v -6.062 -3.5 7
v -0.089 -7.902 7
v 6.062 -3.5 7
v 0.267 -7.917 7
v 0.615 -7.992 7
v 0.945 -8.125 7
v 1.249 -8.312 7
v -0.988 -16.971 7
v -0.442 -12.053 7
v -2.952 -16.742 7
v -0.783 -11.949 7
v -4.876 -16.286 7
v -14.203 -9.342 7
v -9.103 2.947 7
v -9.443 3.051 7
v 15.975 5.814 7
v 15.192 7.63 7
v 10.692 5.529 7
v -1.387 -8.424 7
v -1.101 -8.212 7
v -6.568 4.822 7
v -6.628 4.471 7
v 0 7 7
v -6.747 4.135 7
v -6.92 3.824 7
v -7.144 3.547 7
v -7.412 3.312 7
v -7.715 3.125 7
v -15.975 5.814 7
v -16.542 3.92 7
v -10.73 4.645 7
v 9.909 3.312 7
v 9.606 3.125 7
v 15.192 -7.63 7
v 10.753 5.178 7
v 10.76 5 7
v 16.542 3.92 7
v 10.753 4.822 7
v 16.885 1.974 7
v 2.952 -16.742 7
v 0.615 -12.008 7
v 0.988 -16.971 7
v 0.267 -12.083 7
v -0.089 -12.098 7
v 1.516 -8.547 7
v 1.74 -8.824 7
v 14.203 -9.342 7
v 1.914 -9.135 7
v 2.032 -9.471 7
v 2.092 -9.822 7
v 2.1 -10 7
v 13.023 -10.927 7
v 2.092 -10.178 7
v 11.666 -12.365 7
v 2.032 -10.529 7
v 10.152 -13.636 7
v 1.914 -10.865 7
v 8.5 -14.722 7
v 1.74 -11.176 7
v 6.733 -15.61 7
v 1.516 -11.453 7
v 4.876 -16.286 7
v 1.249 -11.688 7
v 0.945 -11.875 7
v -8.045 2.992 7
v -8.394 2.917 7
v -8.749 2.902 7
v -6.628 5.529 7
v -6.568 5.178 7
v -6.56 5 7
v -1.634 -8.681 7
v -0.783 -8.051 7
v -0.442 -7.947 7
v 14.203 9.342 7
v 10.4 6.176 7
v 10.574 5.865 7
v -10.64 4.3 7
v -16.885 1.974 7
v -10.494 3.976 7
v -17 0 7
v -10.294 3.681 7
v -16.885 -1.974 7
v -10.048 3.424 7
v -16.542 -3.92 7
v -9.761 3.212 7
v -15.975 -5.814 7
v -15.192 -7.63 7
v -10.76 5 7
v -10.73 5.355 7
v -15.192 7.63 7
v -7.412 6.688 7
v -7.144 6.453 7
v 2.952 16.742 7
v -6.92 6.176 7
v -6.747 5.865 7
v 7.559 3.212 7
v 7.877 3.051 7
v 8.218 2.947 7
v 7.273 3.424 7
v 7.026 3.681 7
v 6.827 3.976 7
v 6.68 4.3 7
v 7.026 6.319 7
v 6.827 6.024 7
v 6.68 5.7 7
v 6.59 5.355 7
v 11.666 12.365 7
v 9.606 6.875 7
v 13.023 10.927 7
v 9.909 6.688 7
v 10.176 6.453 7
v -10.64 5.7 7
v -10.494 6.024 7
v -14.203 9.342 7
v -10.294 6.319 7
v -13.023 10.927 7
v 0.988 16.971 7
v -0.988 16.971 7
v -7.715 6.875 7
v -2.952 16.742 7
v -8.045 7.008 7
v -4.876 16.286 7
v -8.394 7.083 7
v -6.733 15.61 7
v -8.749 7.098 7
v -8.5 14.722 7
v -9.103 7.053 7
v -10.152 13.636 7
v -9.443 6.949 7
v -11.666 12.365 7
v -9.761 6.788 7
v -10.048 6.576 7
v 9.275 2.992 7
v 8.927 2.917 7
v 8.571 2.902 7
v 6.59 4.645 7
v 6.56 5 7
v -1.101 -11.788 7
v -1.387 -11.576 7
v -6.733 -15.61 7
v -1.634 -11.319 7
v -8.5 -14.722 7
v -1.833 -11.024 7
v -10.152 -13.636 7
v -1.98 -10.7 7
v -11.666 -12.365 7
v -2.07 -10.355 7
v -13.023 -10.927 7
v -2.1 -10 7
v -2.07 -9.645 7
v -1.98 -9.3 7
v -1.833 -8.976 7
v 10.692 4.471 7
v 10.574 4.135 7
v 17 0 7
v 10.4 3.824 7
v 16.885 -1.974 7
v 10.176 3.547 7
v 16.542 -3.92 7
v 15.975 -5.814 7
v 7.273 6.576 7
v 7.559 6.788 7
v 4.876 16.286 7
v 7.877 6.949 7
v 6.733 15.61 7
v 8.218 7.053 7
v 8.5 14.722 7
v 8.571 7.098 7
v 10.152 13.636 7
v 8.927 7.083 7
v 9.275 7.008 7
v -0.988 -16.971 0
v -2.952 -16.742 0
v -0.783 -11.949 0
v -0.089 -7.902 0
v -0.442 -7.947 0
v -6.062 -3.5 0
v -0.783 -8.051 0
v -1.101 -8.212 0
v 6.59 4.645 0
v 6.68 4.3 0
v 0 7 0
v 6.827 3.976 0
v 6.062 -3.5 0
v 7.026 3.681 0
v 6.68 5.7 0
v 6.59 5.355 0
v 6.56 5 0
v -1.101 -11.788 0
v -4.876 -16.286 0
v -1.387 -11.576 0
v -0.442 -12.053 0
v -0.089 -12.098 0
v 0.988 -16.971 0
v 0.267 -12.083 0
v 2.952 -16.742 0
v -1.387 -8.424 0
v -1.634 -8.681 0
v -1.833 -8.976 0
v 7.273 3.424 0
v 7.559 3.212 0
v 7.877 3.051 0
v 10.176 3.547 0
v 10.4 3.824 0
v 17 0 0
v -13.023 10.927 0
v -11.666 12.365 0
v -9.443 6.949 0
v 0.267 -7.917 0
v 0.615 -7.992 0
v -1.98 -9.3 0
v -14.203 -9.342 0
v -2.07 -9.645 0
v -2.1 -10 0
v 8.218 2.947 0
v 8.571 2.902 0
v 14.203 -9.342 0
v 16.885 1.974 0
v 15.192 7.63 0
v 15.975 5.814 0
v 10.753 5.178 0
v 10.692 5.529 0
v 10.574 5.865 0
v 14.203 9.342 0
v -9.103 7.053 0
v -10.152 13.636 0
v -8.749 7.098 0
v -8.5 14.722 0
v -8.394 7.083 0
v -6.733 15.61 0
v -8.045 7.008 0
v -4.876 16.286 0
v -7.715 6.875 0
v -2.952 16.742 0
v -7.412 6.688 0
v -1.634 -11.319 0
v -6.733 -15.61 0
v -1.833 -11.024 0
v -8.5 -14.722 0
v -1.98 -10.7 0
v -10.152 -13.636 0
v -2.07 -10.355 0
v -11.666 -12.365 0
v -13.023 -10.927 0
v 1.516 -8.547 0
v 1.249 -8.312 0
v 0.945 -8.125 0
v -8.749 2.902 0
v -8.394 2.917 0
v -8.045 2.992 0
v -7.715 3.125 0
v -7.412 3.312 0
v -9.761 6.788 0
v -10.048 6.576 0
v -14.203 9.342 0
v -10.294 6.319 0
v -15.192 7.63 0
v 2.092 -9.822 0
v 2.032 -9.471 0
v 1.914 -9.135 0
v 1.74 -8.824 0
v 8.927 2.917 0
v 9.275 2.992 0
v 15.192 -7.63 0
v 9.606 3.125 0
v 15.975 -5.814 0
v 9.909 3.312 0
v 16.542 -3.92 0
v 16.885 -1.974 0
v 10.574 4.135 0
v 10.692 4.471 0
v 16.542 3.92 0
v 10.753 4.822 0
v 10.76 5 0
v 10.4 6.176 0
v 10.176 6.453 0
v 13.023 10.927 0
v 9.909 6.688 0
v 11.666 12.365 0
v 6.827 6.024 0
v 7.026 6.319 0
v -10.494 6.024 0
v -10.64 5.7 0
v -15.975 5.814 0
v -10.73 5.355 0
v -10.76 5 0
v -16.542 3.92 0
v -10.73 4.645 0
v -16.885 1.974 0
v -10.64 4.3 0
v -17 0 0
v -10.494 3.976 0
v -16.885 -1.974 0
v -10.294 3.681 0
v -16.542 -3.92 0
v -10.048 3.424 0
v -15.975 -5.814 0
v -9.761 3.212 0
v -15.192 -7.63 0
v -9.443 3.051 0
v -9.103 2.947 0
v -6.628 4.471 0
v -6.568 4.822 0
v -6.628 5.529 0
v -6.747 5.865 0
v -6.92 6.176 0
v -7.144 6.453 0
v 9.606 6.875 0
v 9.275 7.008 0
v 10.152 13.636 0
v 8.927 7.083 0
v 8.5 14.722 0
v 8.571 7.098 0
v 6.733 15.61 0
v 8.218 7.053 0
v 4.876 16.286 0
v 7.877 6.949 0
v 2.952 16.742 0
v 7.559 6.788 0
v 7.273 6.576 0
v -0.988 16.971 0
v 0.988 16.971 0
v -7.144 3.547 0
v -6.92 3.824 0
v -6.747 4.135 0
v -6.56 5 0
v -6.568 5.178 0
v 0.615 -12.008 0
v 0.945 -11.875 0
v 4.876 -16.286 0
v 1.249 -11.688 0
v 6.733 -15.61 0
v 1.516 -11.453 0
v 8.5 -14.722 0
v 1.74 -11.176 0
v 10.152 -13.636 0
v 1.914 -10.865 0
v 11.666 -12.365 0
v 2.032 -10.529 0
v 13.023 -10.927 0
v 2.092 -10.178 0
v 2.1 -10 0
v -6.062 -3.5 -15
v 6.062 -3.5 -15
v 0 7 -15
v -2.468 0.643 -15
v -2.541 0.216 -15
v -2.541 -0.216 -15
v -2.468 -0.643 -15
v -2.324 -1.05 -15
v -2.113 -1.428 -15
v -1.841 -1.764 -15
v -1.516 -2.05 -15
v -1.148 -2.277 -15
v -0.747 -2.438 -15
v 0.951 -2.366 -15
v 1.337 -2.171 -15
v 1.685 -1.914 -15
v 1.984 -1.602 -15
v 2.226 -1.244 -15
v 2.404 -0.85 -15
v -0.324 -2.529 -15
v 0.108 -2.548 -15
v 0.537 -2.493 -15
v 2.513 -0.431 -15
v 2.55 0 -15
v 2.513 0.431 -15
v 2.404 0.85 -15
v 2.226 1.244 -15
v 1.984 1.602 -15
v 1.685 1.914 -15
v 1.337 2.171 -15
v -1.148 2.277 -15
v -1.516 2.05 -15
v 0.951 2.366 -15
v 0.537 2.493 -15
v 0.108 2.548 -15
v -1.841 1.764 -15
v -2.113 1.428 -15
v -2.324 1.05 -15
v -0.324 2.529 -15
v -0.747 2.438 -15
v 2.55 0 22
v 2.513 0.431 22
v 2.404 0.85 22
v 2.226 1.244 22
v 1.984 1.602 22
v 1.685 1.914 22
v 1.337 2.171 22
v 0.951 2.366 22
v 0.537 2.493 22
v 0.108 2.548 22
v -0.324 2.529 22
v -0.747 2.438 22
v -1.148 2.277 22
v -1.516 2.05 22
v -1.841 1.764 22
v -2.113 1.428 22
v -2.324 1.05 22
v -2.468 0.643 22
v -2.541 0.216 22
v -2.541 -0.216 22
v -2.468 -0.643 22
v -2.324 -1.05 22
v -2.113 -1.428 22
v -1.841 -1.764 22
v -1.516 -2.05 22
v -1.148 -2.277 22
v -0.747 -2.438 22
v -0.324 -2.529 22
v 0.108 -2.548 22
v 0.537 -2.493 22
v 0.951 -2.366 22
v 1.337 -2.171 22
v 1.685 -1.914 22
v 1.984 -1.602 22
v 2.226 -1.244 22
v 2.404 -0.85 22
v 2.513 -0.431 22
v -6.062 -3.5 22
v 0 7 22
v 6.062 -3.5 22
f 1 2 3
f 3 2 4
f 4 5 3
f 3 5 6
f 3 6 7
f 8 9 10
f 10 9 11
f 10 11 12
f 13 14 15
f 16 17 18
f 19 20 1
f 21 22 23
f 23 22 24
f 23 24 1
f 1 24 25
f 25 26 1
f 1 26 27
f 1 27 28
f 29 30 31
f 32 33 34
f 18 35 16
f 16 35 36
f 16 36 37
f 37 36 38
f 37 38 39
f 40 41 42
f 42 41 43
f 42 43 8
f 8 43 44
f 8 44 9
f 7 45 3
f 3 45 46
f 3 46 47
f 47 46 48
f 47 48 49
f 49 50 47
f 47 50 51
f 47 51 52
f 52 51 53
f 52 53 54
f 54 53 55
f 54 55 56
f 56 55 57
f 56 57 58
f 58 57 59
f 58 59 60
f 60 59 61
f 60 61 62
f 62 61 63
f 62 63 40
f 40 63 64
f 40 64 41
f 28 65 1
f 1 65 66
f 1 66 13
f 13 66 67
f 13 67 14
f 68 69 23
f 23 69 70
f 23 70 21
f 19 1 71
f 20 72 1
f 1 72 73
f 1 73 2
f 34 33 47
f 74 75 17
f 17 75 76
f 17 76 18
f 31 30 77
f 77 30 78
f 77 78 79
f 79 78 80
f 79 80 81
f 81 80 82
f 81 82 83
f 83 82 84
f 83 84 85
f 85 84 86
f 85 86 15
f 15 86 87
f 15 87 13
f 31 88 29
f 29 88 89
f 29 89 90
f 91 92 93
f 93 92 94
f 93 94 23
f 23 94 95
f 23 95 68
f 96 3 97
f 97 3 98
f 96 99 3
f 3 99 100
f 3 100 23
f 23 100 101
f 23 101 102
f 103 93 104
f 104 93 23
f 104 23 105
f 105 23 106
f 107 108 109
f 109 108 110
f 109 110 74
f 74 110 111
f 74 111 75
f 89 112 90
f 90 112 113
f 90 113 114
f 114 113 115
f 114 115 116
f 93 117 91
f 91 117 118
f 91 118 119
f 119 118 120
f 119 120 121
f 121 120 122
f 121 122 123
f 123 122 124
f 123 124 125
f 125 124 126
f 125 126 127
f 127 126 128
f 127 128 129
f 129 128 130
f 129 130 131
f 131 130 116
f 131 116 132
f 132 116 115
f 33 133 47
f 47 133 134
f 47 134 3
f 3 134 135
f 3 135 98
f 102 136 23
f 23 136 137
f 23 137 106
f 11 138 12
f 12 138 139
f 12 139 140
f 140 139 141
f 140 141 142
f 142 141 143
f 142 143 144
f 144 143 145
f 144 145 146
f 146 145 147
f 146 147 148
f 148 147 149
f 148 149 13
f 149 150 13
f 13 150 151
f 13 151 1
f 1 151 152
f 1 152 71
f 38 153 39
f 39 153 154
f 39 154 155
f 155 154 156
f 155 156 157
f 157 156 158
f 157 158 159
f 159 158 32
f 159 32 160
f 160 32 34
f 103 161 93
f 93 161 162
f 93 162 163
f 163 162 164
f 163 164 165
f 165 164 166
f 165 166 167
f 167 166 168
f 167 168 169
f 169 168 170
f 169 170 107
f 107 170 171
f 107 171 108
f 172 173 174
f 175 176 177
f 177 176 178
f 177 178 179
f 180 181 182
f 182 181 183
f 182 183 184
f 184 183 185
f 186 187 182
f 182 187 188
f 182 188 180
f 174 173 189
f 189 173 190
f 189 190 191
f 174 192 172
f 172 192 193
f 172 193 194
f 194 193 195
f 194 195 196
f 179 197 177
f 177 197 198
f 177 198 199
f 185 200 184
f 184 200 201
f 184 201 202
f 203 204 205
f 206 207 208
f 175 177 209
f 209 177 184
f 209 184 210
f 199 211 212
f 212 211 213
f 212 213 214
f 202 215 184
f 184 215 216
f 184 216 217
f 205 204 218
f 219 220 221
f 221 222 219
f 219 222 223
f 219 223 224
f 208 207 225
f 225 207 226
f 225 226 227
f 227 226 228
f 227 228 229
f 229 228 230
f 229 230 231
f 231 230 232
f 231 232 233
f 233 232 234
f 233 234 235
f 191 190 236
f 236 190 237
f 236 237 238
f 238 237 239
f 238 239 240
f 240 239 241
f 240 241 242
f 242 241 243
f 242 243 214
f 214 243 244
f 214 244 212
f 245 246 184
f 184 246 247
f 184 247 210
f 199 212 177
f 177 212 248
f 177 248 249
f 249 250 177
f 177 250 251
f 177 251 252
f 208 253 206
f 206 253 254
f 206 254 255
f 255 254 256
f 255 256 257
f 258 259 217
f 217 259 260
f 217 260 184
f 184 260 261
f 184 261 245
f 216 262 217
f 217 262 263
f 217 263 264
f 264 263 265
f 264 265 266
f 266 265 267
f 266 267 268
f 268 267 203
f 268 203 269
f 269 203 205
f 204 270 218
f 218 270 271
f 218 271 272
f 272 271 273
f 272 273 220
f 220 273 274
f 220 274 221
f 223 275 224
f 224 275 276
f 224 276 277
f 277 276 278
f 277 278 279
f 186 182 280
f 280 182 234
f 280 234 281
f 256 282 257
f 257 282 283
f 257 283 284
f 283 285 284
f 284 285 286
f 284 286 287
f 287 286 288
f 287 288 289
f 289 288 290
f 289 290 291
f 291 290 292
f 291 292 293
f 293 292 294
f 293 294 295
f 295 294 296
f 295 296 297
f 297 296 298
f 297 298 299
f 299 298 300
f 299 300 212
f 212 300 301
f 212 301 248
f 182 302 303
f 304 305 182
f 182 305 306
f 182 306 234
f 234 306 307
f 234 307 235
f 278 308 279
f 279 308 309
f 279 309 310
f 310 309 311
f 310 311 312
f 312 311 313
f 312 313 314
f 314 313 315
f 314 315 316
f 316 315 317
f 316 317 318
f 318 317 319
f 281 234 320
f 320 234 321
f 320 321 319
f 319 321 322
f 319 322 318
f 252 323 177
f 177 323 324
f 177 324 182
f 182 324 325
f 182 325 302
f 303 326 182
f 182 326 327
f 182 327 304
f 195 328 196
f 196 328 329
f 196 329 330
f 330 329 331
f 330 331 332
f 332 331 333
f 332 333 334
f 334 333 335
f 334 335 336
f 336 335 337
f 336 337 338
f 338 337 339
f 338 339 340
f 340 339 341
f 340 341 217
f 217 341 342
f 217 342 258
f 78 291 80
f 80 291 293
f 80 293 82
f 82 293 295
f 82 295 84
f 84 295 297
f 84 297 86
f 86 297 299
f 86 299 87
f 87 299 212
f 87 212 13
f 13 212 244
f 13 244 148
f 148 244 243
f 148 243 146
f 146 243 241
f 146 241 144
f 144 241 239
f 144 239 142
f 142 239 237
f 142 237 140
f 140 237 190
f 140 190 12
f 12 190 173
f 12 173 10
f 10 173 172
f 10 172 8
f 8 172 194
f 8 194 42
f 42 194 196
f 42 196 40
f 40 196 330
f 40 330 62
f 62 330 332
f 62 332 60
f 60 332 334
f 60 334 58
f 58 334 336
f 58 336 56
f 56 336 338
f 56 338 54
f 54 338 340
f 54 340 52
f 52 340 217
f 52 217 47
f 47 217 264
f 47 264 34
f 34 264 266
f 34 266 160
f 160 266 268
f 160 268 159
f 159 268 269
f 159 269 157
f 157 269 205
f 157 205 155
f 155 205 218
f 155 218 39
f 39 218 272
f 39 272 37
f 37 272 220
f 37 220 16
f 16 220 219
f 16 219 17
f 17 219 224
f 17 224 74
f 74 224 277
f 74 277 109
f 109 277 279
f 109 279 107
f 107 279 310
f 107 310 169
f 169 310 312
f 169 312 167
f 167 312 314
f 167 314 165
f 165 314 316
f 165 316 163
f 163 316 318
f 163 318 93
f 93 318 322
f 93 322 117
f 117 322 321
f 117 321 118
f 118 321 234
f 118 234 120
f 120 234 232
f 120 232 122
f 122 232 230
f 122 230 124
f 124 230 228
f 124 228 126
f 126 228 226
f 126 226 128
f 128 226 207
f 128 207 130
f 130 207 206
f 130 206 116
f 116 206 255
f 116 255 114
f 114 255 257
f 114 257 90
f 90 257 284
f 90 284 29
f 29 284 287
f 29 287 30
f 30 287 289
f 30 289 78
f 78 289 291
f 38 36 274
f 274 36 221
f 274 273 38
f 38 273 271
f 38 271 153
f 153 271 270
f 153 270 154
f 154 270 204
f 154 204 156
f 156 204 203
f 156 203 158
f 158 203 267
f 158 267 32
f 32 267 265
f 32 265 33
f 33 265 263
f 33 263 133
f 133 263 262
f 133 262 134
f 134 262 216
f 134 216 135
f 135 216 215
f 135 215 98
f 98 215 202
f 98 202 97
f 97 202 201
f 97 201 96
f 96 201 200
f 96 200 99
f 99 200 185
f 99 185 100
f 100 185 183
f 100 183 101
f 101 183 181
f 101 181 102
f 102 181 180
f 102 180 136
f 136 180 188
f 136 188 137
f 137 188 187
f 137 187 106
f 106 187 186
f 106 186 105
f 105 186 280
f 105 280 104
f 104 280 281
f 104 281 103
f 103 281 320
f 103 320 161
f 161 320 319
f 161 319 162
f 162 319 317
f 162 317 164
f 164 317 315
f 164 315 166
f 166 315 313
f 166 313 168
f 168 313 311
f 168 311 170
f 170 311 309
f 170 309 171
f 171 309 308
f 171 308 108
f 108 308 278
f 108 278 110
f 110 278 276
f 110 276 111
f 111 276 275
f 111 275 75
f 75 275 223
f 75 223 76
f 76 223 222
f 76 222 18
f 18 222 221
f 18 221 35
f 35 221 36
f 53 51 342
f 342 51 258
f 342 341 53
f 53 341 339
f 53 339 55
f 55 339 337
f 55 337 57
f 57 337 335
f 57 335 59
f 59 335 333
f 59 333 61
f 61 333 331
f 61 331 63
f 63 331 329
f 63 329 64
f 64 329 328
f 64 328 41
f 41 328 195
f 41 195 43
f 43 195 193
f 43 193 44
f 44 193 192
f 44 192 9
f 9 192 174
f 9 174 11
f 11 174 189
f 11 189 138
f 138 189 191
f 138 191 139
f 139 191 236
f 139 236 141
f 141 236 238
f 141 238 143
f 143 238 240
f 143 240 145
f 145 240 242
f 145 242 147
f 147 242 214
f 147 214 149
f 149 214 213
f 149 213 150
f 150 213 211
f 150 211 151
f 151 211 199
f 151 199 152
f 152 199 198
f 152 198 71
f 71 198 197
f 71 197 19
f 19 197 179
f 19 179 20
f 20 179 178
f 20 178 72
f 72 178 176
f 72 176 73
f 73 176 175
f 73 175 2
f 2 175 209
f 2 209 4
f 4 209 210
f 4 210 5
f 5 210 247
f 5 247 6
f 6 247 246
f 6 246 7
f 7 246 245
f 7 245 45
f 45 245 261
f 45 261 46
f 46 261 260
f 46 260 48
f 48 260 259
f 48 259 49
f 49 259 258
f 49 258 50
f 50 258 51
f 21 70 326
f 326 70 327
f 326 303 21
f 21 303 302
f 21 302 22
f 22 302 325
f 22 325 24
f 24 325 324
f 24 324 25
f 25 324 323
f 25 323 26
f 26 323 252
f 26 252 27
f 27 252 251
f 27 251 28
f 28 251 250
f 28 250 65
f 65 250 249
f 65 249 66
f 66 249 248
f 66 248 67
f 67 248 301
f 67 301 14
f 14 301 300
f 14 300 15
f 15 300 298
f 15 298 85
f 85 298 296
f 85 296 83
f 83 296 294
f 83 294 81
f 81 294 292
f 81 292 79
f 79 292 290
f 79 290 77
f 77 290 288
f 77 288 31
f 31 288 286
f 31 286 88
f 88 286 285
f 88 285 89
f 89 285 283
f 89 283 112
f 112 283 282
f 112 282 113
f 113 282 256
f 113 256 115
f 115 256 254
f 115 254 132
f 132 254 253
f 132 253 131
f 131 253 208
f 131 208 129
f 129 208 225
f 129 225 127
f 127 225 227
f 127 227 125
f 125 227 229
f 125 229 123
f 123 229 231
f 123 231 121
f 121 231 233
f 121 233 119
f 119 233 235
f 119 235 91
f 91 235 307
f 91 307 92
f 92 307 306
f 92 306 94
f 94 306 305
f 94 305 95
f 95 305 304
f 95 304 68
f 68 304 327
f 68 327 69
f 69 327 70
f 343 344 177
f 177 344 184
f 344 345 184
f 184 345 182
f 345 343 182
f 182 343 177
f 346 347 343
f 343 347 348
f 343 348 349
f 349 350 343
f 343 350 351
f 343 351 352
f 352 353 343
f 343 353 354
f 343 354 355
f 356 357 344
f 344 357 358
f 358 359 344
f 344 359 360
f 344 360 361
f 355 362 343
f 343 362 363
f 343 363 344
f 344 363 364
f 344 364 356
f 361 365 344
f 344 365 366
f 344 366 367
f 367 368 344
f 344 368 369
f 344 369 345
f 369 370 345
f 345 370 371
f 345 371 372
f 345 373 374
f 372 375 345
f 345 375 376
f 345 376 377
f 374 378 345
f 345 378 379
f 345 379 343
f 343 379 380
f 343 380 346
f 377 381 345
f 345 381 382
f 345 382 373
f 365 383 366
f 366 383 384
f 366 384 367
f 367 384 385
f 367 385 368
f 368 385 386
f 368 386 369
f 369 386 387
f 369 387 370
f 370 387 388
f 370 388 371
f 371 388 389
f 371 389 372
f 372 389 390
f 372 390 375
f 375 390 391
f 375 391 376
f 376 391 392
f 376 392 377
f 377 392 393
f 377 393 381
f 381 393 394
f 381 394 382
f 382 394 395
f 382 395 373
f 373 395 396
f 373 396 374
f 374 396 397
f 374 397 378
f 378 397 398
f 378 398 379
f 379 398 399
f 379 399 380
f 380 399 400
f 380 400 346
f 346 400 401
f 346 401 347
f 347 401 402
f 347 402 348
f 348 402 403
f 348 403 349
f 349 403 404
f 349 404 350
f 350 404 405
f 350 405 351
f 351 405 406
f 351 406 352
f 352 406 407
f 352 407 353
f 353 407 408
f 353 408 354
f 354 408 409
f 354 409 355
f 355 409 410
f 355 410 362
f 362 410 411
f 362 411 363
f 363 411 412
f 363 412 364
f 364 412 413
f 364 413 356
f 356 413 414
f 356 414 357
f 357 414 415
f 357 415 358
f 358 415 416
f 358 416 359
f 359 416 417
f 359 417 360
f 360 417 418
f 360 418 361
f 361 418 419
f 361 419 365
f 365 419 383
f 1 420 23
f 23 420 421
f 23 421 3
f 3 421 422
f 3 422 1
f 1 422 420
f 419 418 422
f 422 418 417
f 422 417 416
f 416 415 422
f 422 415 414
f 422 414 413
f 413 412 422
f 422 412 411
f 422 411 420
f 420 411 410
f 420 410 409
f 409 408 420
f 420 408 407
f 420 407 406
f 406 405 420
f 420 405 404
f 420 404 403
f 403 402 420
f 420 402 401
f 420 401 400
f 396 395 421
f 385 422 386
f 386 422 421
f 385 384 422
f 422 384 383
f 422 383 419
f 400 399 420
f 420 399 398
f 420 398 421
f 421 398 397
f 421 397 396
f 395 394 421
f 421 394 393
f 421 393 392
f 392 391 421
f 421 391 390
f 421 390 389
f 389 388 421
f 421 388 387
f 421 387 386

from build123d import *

# Parameters (mm, degrees)
SKETCH3_R                = 17
SKETCH3_R_2              = 2.1
BOSS_EXTRUDE1_DEPTH      = 7
SKETCH4_R                = 2.55
BOSS_EXTRUDE2_DEPTH      = 15
BOSS_EXTRUDE2_DEPTH_BACK = 22
SKETCH9_R                = 2.55
CUT_EXTRUDE1_DEPTH       = 23


with BuildPart() as part:
    # Sketch3 → Boss-Extrude1 (new body)
    with BuildSketch(Plane.XY):
        Circle(SKETCH3_R)
        with Locations((8.660254038, 5)):
            Circle(SKETCH3_R_2, mode=Mode.SUBTRACT)
        with Locations((0, -10)):
            Circle(SKETCH3_R_2, mode=Mode.SUBTRACT)
        with Locations((-8.660254038, 5)):
            Circle(SKETCH3_R_2, mode=Mode.SUBTRACT)
    extrude(amount=BOSS_EXTRUDE1_DEPTH)

    # Sketch4 → Boss-Extrude2 (add, two sides)
    with BuildSketch(Plane.XY.offset(7)) as boss_extrude2_sk:
        Polygon((0, 7), (6.062177826, -3.5), (-6.062177826, -3.5), align=None)
        Circle(SKETCH4_R, mode=Mode.SUBTRACT)
    extrude(amount=BOSS_EXTRUDE2_DEPTH)
    extrude(boss_extrude2_sk.sketch, amount=-BOSS_EXTRUDE2_DEPTH_BACK)

    # Sketch9 → Cut-Extrude1 (cut, through all)
    with BuildSketch(Plane.XY.offset(7)):
        Circle(SKETCH9_R)
    extrude(amount=-CUT_EXTRUDE1_DEPTH, mode=Mode.SUBTRACT)


solid = part.part
